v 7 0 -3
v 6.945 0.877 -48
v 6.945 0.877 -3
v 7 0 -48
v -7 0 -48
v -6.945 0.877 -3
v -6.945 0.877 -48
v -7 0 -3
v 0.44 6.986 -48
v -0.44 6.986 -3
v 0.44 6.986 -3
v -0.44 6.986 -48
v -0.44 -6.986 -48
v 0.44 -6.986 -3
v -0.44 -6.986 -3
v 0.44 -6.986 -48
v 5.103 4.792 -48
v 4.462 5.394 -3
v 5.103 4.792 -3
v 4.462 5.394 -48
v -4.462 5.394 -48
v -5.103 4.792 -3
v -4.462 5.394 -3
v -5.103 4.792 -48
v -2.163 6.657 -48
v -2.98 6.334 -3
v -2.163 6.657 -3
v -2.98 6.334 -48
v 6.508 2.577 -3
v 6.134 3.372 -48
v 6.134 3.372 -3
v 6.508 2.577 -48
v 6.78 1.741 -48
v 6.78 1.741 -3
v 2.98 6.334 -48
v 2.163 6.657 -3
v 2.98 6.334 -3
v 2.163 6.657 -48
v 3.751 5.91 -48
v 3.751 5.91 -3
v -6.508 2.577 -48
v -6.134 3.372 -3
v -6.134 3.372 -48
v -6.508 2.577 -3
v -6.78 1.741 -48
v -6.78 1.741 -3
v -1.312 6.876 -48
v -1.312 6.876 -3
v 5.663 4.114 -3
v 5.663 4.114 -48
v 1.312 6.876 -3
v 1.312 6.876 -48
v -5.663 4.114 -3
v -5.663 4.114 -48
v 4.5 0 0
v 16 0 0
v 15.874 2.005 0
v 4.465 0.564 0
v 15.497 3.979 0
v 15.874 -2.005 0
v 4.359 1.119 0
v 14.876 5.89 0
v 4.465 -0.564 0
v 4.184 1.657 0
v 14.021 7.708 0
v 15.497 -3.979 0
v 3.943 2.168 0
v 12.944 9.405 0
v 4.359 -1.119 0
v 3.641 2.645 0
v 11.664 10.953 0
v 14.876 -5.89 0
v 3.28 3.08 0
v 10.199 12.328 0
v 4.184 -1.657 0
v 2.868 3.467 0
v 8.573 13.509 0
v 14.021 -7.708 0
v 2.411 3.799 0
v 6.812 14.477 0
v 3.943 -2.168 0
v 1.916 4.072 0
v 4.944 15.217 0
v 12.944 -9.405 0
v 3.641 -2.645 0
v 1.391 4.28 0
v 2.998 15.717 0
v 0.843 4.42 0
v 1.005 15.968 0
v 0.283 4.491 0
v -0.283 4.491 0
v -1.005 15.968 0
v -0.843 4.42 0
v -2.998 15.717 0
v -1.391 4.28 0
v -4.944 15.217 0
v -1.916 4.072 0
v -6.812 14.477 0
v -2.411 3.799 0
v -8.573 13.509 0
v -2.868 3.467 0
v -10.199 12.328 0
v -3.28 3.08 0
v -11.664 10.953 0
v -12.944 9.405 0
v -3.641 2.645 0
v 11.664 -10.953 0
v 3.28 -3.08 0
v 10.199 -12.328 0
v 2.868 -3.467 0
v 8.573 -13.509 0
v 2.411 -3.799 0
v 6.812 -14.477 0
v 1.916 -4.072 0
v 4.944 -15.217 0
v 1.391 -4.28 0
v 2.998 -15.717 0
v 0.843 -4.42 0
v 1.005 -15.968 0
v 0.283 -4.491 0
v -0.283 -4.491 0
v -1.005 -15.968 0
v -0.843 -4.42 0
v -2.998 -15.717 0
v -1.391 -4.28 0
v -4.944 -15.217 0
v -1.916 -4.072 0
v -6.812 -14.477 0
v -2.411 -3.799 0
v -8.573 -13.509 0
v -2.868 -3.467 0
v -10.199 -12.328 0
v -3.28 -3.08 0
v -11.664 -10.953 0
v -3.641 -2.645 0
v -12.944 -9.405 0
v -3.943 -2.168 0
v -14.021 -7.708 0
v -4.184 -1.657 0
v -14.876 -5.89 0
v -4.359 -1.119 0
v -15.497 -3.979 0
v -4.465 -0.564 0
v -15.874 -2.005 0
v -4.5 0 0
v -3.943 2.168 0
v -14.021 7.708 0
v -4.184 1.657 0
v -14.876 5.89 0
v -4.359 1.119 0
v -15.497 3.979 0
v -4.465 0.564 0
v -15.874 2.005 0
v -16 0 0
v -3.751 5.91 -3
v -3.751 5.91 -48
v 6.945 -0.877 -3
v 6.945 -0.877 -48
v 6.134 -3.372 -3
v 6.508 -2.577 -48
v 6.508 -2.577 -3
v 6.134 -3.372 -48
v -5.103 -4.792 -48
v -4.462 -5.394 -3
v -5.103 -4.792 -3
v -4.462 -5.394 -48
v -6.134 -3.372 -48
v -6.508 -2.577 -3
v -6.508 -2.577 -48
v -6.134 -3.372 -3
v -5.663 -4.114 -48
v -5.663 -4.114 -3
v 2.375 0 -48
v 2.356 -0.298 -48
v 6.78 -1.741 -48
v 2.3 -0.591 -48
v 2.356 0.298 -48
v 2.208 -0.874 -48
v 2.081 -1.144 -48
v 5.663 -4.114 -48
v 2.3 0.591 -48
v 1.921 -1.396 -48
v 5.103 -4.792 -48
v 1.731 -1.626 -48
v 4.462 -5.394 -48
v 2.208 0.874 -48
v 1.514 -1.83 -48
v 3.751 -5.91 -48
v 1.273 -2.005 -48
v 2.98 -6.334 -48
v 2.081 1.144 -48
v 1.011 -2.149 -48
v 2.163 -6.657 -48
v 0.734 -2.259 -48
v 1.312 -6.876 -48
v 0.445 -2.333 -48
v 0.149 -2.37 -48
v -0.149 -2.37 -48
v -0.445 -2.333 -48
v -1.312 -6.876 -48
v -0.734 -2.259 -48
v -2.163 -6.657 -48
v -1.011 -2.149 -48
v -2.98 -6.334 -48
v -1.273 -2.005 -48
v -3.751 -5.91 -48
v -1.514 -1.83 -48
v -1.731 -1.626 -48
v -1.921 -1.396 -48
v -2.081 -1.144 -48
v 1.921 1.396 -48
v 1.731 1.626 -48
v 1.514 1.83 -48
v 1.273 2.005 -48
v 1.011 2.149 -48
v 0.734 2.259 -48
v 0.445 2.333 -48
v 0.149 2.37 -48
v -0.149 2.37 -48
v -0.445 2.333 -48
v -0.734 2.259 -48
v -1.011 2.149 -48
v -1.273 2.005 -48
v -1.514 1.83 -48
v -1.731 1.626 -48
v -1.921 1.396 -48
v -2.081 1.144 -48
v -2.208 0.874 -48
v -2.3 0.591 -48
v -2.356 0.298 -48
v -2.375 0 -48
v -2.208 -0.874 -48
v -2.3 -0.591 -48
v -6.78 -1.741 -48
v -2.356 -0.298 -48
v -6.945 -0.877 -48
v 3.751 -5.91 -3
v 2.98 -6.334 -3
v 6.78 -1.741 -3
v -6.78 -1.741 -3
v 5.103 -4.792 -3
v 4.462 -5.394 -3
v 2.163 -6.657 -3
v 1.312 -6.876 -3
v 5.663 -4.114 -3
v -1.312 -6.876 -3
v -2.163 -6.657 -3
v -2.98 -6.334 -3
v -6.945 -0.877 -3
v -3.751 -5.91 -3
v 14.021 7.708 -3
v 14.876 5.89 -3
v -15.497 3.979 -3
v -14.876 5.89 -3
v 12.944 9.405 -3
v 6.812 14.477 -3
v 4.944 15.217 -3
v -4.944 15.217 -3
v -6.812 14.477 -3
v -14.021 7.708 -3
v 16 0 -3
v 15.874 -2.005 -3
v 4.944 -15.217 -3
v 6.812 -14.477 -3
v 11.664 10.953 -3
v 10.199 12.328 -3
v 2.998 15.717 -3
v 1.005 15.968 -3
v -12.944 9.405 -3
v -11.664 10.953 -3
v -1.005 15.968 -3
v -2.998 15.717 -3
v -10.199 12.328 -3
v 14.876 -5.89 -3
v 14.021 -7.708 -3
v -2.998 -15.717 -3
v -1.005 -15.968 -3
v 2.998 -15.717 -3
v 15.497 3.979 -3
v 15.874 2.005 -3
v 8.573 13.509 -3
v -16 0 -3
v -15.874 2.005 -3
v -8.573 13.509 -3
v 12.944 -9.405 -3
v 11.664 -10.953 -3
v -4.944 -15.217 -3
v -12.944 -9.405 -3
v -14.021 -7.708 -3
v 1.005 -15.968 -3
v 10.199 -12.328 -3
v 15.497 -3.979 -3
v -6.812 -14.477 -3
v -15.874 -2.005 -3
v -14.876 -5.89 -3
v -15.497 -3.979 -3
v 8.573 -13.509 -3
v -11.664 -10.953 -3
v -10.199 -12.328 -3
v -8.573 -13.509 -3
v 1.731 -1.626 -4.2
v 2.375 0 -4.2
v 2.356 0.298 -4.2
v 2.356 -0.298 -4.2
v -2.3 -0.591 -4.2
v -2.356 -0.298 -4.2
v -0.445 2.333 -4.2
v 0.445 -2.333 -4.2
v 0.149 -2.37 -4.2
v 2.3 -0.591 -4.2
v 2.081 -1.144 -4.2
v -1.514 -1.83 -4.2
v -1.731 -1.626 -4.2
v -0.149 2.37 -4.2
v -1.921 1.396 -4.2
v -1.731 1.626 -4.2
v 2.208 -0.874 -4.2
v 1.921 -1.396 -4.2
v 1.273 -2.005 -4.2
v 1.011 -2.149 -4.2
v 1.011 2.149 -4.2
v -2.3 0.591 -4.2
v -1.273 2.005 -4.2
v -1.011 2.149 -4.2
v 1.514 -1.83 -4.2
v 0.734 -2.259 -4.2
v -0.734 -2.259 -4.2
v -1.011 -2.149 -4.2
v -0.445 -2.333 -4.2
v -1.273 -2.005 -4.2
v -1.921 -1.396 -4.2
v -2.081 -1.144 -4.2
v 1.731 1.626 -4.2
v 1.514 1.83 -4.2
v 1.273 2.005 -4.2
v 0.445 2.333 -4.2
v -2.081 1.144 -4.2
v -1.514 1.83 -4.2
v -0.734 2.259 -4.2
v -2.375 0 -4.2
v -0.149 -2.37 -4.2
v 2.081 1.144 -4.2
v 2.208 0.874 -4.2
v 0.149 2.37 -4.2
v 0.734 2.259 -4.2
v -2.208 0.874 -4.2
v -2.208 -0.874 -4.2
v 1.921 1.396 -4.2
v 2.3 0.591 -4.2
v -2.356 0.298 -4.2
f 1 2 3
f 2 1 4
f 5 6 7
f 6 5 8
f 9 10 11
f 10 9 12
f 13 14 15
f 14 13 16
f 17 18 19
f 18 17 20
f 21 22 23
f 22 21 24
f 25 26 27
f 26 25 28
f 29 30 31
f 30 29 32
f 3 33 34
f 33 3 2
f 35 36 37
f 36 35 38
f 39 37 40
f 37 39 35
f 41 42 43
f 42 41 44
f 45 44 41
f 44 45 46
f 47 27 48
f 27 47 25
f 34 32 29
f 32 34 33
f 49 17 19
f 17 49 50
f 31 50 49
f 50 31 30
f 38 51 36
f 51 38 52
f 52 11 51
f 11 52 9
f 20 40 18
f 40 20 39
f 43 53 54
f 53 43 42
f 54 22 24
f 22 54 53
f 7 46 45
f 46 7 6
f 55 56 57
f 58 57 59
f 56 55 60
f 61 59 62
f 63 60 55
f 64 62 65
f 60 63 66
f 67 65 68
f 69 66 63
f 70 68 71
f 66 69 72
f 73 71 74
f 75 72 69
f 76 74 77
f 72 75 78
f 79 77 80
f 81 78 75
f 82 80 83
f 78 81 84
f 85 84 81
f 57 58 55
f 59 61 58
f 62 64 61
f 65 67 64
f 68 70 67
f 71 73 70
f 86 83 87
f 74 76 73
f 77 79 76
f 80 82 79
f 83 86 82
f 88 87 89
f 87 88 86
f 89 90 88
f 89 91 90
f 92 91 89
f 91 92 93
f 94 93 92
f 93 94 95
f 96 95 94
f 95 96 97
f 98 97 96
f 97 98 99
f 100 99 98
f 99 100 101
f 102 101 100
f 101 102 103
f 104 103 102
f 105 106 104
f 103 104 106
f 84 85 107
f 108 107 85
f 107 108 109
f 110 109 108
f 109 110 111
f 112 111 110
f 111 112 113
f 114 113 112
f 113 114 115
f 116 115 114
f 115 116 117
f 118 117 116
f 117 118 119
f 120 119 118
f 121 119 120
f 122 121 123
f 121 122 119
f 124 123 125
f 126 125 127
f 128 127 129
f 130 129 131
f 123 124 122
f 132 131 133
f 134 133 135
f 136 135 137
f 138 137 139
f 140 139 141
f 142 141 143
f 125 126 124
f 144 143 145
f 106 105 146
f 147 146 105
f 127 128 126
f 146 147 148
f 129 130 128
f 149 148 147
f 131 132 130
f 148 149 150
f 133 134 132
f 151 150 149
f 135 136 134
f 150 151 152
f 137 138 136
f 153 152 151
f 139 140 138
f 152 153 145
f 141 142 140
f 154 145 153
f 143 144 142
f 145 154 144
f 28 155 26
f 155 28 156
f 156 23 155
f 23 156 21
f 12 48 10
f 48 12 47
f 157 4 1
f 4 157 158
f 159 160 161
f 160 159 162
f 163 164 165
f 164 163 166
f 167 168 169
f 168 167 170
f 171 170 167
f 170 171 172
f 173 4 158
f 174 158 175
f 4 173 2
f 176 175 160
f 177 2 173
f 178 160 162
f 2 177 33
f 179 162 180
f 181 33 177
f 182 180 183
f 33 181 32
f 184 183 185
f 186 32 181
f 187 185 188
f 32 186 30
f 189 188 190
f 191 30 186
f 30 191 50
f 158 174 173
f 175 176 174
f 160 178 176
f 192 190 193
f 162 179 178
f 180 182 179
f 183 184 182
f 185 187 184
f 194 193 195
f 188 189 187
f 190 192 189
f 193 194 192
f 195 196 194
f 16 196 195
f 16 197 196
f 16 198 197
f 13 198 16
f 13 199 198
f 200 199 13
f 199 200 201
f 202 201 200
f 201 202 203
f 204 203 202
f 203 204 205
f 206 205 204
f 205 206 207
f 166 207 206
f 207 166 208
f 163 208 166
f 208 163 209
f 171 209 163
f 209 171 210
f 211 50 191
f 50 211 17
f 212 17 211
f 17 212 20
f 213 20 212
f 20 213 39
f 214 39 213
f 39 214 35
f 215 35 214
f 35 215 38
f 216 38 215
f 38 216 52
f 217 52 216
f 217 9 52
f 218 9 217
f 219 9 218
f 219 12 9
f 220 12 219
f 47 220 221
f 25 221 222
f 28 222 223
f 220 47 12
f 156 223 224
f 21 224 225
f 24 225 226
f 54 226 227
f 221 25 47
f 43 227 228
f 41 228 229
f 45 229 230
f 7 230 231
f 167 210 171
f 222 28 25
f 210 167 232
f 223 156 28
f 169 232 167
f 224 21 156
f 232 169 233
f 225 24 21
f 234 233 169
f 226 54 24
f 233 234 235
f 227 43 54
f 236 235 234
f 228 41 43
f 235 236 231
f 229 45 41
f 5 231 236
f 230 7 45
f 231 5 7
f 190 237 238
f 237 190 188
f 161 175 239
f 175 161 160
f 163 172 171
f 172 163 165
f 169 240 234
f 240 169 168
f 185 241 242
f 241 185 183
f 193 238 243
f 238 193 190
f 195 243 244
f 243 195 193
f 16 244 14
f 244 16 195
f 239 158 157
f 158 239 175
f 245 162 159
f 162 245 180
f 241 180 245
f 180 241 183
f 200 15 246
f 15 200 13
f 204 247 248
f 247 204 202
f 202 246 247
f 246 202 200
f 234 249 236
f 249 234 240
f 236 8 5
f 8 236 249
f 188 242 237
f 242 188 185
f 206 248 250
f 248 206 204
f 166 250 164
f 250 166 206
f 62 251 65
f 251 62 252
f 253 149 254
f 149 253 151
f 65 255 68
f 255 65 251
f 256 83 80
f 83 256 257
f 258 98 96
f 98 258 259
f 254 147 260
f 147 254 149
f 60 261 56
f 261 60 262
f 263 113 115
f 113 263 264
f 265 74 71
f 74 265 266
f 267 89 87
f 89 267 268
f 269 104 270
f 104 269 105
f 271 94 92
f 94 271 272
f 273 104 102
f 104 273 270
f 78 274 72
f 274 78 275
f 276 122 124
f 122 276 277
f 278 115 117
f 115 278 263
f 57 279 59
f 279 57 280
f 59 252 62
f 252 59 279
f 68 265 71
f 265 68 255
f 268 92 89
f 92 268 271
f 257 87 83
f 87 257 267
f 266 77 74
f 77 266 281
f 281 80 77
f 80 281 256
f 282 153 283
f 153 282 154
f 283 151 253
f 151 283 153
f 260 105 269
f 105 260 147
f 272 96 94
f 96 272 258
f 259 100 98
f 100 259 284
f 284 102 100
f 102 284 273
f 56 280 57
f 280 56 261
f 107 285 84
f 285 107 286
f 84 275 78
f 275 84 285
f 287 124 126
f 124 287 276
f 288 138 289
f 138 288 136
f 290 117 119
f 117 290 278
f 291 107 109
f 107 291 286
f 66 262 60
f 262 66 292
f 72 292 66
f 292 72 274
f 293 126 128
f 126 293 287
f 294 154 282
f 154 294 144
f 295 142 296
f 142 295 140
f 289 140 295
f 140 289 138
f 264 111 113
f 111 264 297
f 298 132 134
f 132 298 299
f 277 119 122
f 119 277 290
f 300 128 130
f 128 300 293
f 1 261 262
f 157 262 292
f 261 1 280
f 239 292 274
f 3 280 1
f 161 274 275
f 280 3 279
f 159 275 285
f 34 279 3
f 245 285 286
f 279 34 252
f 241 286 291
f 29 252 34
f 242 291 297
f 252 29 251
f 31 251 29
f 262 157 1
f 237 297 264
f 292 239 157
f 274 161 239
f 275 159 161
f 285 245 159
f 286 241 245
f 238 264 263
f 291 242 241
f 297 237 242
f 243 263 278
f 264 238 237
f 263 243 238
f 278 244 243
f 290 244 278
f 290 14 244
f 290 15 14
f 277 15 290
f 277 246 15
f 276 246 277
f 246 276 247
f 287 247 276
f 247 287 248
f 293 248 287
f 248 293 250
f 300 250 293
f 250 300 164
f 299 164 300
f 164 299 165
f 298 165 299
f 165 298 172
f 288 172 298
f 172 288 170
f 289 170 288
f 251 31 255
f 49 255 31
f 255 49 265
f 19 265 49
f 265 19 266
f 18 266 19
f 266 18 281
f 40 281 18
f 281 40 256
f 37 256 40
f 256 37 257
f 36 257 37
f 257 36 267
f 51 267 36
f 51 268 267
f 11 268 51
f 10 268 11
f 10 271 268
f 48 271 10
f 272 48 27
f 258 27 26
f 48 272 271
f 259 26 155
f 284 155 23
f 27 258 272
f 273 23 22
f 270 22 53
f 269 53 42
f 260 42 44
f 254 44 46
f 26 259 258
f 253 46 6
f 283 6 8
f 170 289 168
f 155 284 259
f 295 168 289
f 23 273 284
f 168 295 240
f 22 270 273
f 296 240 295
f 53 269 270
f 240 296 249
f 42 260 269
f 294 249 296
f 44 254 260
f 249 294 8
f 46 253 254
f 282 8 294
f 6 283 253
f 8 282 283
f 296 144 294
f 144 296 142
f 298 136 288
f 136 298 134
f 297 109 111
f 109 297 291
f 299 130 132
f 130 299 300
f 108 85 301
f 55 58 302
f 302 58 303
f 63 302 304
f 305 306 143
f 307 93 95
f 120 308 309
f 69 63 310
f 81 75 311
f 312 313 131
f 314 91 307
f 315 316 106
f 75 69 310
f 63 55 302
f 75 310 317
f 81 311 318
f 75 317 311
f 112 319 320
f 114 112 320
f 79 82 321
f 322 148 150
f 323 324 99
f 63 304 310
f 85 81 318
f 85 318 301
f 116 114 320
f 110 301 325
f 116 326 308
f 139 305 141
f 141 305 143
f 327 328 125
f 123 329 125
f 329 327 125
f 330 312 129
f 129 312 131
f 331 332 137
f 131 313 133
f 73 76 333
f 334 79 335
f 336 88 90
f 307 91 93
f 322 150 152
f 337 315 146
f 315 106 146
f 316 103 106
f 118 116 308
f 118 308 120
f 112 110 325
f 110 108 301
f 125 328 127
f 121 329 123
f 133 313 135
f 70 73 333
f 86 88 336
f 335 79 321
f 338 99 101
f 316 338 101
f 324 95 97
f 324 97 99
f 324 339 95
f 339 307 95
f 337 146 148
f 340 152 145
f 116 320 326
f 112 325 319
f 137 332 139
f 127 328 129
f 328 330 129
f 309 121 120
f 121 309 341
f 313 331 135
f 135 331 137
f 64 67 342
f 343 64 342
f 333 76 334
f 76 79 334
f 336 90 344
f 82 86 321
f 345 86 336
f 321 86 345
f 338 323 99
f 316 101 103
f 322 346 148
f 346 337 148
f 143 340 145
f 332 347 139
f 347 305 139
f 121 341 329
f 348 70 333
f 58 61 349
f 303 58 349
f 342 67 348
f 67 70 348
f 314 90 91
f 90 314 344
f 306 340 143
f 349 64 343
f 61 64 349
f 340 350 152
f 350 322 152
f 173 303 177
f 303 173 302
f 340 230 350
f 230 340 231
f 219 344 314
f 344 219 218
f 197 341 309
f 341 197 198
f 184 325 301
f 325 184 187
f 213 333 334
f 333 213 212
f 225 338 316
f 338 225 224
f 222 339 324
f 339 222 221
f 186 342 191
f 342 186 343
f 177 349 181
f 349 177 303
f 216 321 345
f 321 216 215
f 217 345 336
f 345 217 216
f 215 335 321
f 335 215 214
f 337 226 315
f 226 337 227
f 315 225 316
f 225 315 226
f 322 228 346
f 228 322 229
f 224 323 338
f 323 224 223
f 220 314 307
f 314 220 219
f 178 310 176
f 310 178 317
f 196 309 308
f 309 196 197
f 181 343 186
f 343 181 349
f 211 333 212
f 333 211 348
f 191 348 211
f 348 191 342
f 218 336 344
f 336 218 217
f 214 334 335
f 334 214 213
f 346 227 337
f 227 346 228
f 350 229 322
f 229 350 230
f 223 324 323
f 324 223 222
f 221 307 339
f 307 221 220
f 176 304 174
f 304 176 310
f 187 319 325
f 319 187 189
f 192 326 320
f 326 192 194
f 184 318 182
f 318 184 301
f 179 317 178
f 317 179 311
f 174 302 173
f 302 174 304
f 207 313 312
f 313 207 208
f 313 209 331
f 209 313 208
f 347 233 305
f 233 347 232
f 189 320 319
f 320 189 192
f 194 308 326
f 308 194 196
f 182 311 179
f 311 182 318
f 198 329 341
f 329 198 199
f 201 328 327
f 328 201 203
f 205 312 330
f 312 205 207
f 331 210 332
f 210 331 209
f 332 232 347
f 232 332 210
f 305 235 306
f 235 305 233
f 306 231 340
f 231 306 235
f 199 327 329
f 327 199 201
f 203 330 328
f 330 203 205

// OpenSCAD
$fn = 50;


difference() {
	union() {
		translate(v = [0, 0, -48.0000000000]) {
			cylinder(h = 48, r = 7.0000000000);
		}
		translate(v = [0, 0, -3.0000000000]) {
			cylinder(h = 3, r = 16.0000000000);
		}
	}
	union() {
		translate(v = [0, 0, 0]) {
			rotate(a = [0, 0, 0]) {
				difference() {
					union() {
						#translate(v = [0, 0, -48.0000000000]) {
							cylinder(h = 48, r = 2.2500000000);
						}
						#translate(v = [0, 0, -4.2000000000]) {
							cylinder(h = 4.2000000000, r1 = 2.3750000000, r2 = 4.5000000000);
						}
						#translate(v = [0, 0, -48.0000000000]) {
							cylinder(h = 48, r = 2.3750000000);
						}
						#translate(v = [0, 0, -48.0000000000]) {
							cylinder(h = 48, r = 2.2500000000);
						}
					}
					union();
				}
			}
		}
	}
}
